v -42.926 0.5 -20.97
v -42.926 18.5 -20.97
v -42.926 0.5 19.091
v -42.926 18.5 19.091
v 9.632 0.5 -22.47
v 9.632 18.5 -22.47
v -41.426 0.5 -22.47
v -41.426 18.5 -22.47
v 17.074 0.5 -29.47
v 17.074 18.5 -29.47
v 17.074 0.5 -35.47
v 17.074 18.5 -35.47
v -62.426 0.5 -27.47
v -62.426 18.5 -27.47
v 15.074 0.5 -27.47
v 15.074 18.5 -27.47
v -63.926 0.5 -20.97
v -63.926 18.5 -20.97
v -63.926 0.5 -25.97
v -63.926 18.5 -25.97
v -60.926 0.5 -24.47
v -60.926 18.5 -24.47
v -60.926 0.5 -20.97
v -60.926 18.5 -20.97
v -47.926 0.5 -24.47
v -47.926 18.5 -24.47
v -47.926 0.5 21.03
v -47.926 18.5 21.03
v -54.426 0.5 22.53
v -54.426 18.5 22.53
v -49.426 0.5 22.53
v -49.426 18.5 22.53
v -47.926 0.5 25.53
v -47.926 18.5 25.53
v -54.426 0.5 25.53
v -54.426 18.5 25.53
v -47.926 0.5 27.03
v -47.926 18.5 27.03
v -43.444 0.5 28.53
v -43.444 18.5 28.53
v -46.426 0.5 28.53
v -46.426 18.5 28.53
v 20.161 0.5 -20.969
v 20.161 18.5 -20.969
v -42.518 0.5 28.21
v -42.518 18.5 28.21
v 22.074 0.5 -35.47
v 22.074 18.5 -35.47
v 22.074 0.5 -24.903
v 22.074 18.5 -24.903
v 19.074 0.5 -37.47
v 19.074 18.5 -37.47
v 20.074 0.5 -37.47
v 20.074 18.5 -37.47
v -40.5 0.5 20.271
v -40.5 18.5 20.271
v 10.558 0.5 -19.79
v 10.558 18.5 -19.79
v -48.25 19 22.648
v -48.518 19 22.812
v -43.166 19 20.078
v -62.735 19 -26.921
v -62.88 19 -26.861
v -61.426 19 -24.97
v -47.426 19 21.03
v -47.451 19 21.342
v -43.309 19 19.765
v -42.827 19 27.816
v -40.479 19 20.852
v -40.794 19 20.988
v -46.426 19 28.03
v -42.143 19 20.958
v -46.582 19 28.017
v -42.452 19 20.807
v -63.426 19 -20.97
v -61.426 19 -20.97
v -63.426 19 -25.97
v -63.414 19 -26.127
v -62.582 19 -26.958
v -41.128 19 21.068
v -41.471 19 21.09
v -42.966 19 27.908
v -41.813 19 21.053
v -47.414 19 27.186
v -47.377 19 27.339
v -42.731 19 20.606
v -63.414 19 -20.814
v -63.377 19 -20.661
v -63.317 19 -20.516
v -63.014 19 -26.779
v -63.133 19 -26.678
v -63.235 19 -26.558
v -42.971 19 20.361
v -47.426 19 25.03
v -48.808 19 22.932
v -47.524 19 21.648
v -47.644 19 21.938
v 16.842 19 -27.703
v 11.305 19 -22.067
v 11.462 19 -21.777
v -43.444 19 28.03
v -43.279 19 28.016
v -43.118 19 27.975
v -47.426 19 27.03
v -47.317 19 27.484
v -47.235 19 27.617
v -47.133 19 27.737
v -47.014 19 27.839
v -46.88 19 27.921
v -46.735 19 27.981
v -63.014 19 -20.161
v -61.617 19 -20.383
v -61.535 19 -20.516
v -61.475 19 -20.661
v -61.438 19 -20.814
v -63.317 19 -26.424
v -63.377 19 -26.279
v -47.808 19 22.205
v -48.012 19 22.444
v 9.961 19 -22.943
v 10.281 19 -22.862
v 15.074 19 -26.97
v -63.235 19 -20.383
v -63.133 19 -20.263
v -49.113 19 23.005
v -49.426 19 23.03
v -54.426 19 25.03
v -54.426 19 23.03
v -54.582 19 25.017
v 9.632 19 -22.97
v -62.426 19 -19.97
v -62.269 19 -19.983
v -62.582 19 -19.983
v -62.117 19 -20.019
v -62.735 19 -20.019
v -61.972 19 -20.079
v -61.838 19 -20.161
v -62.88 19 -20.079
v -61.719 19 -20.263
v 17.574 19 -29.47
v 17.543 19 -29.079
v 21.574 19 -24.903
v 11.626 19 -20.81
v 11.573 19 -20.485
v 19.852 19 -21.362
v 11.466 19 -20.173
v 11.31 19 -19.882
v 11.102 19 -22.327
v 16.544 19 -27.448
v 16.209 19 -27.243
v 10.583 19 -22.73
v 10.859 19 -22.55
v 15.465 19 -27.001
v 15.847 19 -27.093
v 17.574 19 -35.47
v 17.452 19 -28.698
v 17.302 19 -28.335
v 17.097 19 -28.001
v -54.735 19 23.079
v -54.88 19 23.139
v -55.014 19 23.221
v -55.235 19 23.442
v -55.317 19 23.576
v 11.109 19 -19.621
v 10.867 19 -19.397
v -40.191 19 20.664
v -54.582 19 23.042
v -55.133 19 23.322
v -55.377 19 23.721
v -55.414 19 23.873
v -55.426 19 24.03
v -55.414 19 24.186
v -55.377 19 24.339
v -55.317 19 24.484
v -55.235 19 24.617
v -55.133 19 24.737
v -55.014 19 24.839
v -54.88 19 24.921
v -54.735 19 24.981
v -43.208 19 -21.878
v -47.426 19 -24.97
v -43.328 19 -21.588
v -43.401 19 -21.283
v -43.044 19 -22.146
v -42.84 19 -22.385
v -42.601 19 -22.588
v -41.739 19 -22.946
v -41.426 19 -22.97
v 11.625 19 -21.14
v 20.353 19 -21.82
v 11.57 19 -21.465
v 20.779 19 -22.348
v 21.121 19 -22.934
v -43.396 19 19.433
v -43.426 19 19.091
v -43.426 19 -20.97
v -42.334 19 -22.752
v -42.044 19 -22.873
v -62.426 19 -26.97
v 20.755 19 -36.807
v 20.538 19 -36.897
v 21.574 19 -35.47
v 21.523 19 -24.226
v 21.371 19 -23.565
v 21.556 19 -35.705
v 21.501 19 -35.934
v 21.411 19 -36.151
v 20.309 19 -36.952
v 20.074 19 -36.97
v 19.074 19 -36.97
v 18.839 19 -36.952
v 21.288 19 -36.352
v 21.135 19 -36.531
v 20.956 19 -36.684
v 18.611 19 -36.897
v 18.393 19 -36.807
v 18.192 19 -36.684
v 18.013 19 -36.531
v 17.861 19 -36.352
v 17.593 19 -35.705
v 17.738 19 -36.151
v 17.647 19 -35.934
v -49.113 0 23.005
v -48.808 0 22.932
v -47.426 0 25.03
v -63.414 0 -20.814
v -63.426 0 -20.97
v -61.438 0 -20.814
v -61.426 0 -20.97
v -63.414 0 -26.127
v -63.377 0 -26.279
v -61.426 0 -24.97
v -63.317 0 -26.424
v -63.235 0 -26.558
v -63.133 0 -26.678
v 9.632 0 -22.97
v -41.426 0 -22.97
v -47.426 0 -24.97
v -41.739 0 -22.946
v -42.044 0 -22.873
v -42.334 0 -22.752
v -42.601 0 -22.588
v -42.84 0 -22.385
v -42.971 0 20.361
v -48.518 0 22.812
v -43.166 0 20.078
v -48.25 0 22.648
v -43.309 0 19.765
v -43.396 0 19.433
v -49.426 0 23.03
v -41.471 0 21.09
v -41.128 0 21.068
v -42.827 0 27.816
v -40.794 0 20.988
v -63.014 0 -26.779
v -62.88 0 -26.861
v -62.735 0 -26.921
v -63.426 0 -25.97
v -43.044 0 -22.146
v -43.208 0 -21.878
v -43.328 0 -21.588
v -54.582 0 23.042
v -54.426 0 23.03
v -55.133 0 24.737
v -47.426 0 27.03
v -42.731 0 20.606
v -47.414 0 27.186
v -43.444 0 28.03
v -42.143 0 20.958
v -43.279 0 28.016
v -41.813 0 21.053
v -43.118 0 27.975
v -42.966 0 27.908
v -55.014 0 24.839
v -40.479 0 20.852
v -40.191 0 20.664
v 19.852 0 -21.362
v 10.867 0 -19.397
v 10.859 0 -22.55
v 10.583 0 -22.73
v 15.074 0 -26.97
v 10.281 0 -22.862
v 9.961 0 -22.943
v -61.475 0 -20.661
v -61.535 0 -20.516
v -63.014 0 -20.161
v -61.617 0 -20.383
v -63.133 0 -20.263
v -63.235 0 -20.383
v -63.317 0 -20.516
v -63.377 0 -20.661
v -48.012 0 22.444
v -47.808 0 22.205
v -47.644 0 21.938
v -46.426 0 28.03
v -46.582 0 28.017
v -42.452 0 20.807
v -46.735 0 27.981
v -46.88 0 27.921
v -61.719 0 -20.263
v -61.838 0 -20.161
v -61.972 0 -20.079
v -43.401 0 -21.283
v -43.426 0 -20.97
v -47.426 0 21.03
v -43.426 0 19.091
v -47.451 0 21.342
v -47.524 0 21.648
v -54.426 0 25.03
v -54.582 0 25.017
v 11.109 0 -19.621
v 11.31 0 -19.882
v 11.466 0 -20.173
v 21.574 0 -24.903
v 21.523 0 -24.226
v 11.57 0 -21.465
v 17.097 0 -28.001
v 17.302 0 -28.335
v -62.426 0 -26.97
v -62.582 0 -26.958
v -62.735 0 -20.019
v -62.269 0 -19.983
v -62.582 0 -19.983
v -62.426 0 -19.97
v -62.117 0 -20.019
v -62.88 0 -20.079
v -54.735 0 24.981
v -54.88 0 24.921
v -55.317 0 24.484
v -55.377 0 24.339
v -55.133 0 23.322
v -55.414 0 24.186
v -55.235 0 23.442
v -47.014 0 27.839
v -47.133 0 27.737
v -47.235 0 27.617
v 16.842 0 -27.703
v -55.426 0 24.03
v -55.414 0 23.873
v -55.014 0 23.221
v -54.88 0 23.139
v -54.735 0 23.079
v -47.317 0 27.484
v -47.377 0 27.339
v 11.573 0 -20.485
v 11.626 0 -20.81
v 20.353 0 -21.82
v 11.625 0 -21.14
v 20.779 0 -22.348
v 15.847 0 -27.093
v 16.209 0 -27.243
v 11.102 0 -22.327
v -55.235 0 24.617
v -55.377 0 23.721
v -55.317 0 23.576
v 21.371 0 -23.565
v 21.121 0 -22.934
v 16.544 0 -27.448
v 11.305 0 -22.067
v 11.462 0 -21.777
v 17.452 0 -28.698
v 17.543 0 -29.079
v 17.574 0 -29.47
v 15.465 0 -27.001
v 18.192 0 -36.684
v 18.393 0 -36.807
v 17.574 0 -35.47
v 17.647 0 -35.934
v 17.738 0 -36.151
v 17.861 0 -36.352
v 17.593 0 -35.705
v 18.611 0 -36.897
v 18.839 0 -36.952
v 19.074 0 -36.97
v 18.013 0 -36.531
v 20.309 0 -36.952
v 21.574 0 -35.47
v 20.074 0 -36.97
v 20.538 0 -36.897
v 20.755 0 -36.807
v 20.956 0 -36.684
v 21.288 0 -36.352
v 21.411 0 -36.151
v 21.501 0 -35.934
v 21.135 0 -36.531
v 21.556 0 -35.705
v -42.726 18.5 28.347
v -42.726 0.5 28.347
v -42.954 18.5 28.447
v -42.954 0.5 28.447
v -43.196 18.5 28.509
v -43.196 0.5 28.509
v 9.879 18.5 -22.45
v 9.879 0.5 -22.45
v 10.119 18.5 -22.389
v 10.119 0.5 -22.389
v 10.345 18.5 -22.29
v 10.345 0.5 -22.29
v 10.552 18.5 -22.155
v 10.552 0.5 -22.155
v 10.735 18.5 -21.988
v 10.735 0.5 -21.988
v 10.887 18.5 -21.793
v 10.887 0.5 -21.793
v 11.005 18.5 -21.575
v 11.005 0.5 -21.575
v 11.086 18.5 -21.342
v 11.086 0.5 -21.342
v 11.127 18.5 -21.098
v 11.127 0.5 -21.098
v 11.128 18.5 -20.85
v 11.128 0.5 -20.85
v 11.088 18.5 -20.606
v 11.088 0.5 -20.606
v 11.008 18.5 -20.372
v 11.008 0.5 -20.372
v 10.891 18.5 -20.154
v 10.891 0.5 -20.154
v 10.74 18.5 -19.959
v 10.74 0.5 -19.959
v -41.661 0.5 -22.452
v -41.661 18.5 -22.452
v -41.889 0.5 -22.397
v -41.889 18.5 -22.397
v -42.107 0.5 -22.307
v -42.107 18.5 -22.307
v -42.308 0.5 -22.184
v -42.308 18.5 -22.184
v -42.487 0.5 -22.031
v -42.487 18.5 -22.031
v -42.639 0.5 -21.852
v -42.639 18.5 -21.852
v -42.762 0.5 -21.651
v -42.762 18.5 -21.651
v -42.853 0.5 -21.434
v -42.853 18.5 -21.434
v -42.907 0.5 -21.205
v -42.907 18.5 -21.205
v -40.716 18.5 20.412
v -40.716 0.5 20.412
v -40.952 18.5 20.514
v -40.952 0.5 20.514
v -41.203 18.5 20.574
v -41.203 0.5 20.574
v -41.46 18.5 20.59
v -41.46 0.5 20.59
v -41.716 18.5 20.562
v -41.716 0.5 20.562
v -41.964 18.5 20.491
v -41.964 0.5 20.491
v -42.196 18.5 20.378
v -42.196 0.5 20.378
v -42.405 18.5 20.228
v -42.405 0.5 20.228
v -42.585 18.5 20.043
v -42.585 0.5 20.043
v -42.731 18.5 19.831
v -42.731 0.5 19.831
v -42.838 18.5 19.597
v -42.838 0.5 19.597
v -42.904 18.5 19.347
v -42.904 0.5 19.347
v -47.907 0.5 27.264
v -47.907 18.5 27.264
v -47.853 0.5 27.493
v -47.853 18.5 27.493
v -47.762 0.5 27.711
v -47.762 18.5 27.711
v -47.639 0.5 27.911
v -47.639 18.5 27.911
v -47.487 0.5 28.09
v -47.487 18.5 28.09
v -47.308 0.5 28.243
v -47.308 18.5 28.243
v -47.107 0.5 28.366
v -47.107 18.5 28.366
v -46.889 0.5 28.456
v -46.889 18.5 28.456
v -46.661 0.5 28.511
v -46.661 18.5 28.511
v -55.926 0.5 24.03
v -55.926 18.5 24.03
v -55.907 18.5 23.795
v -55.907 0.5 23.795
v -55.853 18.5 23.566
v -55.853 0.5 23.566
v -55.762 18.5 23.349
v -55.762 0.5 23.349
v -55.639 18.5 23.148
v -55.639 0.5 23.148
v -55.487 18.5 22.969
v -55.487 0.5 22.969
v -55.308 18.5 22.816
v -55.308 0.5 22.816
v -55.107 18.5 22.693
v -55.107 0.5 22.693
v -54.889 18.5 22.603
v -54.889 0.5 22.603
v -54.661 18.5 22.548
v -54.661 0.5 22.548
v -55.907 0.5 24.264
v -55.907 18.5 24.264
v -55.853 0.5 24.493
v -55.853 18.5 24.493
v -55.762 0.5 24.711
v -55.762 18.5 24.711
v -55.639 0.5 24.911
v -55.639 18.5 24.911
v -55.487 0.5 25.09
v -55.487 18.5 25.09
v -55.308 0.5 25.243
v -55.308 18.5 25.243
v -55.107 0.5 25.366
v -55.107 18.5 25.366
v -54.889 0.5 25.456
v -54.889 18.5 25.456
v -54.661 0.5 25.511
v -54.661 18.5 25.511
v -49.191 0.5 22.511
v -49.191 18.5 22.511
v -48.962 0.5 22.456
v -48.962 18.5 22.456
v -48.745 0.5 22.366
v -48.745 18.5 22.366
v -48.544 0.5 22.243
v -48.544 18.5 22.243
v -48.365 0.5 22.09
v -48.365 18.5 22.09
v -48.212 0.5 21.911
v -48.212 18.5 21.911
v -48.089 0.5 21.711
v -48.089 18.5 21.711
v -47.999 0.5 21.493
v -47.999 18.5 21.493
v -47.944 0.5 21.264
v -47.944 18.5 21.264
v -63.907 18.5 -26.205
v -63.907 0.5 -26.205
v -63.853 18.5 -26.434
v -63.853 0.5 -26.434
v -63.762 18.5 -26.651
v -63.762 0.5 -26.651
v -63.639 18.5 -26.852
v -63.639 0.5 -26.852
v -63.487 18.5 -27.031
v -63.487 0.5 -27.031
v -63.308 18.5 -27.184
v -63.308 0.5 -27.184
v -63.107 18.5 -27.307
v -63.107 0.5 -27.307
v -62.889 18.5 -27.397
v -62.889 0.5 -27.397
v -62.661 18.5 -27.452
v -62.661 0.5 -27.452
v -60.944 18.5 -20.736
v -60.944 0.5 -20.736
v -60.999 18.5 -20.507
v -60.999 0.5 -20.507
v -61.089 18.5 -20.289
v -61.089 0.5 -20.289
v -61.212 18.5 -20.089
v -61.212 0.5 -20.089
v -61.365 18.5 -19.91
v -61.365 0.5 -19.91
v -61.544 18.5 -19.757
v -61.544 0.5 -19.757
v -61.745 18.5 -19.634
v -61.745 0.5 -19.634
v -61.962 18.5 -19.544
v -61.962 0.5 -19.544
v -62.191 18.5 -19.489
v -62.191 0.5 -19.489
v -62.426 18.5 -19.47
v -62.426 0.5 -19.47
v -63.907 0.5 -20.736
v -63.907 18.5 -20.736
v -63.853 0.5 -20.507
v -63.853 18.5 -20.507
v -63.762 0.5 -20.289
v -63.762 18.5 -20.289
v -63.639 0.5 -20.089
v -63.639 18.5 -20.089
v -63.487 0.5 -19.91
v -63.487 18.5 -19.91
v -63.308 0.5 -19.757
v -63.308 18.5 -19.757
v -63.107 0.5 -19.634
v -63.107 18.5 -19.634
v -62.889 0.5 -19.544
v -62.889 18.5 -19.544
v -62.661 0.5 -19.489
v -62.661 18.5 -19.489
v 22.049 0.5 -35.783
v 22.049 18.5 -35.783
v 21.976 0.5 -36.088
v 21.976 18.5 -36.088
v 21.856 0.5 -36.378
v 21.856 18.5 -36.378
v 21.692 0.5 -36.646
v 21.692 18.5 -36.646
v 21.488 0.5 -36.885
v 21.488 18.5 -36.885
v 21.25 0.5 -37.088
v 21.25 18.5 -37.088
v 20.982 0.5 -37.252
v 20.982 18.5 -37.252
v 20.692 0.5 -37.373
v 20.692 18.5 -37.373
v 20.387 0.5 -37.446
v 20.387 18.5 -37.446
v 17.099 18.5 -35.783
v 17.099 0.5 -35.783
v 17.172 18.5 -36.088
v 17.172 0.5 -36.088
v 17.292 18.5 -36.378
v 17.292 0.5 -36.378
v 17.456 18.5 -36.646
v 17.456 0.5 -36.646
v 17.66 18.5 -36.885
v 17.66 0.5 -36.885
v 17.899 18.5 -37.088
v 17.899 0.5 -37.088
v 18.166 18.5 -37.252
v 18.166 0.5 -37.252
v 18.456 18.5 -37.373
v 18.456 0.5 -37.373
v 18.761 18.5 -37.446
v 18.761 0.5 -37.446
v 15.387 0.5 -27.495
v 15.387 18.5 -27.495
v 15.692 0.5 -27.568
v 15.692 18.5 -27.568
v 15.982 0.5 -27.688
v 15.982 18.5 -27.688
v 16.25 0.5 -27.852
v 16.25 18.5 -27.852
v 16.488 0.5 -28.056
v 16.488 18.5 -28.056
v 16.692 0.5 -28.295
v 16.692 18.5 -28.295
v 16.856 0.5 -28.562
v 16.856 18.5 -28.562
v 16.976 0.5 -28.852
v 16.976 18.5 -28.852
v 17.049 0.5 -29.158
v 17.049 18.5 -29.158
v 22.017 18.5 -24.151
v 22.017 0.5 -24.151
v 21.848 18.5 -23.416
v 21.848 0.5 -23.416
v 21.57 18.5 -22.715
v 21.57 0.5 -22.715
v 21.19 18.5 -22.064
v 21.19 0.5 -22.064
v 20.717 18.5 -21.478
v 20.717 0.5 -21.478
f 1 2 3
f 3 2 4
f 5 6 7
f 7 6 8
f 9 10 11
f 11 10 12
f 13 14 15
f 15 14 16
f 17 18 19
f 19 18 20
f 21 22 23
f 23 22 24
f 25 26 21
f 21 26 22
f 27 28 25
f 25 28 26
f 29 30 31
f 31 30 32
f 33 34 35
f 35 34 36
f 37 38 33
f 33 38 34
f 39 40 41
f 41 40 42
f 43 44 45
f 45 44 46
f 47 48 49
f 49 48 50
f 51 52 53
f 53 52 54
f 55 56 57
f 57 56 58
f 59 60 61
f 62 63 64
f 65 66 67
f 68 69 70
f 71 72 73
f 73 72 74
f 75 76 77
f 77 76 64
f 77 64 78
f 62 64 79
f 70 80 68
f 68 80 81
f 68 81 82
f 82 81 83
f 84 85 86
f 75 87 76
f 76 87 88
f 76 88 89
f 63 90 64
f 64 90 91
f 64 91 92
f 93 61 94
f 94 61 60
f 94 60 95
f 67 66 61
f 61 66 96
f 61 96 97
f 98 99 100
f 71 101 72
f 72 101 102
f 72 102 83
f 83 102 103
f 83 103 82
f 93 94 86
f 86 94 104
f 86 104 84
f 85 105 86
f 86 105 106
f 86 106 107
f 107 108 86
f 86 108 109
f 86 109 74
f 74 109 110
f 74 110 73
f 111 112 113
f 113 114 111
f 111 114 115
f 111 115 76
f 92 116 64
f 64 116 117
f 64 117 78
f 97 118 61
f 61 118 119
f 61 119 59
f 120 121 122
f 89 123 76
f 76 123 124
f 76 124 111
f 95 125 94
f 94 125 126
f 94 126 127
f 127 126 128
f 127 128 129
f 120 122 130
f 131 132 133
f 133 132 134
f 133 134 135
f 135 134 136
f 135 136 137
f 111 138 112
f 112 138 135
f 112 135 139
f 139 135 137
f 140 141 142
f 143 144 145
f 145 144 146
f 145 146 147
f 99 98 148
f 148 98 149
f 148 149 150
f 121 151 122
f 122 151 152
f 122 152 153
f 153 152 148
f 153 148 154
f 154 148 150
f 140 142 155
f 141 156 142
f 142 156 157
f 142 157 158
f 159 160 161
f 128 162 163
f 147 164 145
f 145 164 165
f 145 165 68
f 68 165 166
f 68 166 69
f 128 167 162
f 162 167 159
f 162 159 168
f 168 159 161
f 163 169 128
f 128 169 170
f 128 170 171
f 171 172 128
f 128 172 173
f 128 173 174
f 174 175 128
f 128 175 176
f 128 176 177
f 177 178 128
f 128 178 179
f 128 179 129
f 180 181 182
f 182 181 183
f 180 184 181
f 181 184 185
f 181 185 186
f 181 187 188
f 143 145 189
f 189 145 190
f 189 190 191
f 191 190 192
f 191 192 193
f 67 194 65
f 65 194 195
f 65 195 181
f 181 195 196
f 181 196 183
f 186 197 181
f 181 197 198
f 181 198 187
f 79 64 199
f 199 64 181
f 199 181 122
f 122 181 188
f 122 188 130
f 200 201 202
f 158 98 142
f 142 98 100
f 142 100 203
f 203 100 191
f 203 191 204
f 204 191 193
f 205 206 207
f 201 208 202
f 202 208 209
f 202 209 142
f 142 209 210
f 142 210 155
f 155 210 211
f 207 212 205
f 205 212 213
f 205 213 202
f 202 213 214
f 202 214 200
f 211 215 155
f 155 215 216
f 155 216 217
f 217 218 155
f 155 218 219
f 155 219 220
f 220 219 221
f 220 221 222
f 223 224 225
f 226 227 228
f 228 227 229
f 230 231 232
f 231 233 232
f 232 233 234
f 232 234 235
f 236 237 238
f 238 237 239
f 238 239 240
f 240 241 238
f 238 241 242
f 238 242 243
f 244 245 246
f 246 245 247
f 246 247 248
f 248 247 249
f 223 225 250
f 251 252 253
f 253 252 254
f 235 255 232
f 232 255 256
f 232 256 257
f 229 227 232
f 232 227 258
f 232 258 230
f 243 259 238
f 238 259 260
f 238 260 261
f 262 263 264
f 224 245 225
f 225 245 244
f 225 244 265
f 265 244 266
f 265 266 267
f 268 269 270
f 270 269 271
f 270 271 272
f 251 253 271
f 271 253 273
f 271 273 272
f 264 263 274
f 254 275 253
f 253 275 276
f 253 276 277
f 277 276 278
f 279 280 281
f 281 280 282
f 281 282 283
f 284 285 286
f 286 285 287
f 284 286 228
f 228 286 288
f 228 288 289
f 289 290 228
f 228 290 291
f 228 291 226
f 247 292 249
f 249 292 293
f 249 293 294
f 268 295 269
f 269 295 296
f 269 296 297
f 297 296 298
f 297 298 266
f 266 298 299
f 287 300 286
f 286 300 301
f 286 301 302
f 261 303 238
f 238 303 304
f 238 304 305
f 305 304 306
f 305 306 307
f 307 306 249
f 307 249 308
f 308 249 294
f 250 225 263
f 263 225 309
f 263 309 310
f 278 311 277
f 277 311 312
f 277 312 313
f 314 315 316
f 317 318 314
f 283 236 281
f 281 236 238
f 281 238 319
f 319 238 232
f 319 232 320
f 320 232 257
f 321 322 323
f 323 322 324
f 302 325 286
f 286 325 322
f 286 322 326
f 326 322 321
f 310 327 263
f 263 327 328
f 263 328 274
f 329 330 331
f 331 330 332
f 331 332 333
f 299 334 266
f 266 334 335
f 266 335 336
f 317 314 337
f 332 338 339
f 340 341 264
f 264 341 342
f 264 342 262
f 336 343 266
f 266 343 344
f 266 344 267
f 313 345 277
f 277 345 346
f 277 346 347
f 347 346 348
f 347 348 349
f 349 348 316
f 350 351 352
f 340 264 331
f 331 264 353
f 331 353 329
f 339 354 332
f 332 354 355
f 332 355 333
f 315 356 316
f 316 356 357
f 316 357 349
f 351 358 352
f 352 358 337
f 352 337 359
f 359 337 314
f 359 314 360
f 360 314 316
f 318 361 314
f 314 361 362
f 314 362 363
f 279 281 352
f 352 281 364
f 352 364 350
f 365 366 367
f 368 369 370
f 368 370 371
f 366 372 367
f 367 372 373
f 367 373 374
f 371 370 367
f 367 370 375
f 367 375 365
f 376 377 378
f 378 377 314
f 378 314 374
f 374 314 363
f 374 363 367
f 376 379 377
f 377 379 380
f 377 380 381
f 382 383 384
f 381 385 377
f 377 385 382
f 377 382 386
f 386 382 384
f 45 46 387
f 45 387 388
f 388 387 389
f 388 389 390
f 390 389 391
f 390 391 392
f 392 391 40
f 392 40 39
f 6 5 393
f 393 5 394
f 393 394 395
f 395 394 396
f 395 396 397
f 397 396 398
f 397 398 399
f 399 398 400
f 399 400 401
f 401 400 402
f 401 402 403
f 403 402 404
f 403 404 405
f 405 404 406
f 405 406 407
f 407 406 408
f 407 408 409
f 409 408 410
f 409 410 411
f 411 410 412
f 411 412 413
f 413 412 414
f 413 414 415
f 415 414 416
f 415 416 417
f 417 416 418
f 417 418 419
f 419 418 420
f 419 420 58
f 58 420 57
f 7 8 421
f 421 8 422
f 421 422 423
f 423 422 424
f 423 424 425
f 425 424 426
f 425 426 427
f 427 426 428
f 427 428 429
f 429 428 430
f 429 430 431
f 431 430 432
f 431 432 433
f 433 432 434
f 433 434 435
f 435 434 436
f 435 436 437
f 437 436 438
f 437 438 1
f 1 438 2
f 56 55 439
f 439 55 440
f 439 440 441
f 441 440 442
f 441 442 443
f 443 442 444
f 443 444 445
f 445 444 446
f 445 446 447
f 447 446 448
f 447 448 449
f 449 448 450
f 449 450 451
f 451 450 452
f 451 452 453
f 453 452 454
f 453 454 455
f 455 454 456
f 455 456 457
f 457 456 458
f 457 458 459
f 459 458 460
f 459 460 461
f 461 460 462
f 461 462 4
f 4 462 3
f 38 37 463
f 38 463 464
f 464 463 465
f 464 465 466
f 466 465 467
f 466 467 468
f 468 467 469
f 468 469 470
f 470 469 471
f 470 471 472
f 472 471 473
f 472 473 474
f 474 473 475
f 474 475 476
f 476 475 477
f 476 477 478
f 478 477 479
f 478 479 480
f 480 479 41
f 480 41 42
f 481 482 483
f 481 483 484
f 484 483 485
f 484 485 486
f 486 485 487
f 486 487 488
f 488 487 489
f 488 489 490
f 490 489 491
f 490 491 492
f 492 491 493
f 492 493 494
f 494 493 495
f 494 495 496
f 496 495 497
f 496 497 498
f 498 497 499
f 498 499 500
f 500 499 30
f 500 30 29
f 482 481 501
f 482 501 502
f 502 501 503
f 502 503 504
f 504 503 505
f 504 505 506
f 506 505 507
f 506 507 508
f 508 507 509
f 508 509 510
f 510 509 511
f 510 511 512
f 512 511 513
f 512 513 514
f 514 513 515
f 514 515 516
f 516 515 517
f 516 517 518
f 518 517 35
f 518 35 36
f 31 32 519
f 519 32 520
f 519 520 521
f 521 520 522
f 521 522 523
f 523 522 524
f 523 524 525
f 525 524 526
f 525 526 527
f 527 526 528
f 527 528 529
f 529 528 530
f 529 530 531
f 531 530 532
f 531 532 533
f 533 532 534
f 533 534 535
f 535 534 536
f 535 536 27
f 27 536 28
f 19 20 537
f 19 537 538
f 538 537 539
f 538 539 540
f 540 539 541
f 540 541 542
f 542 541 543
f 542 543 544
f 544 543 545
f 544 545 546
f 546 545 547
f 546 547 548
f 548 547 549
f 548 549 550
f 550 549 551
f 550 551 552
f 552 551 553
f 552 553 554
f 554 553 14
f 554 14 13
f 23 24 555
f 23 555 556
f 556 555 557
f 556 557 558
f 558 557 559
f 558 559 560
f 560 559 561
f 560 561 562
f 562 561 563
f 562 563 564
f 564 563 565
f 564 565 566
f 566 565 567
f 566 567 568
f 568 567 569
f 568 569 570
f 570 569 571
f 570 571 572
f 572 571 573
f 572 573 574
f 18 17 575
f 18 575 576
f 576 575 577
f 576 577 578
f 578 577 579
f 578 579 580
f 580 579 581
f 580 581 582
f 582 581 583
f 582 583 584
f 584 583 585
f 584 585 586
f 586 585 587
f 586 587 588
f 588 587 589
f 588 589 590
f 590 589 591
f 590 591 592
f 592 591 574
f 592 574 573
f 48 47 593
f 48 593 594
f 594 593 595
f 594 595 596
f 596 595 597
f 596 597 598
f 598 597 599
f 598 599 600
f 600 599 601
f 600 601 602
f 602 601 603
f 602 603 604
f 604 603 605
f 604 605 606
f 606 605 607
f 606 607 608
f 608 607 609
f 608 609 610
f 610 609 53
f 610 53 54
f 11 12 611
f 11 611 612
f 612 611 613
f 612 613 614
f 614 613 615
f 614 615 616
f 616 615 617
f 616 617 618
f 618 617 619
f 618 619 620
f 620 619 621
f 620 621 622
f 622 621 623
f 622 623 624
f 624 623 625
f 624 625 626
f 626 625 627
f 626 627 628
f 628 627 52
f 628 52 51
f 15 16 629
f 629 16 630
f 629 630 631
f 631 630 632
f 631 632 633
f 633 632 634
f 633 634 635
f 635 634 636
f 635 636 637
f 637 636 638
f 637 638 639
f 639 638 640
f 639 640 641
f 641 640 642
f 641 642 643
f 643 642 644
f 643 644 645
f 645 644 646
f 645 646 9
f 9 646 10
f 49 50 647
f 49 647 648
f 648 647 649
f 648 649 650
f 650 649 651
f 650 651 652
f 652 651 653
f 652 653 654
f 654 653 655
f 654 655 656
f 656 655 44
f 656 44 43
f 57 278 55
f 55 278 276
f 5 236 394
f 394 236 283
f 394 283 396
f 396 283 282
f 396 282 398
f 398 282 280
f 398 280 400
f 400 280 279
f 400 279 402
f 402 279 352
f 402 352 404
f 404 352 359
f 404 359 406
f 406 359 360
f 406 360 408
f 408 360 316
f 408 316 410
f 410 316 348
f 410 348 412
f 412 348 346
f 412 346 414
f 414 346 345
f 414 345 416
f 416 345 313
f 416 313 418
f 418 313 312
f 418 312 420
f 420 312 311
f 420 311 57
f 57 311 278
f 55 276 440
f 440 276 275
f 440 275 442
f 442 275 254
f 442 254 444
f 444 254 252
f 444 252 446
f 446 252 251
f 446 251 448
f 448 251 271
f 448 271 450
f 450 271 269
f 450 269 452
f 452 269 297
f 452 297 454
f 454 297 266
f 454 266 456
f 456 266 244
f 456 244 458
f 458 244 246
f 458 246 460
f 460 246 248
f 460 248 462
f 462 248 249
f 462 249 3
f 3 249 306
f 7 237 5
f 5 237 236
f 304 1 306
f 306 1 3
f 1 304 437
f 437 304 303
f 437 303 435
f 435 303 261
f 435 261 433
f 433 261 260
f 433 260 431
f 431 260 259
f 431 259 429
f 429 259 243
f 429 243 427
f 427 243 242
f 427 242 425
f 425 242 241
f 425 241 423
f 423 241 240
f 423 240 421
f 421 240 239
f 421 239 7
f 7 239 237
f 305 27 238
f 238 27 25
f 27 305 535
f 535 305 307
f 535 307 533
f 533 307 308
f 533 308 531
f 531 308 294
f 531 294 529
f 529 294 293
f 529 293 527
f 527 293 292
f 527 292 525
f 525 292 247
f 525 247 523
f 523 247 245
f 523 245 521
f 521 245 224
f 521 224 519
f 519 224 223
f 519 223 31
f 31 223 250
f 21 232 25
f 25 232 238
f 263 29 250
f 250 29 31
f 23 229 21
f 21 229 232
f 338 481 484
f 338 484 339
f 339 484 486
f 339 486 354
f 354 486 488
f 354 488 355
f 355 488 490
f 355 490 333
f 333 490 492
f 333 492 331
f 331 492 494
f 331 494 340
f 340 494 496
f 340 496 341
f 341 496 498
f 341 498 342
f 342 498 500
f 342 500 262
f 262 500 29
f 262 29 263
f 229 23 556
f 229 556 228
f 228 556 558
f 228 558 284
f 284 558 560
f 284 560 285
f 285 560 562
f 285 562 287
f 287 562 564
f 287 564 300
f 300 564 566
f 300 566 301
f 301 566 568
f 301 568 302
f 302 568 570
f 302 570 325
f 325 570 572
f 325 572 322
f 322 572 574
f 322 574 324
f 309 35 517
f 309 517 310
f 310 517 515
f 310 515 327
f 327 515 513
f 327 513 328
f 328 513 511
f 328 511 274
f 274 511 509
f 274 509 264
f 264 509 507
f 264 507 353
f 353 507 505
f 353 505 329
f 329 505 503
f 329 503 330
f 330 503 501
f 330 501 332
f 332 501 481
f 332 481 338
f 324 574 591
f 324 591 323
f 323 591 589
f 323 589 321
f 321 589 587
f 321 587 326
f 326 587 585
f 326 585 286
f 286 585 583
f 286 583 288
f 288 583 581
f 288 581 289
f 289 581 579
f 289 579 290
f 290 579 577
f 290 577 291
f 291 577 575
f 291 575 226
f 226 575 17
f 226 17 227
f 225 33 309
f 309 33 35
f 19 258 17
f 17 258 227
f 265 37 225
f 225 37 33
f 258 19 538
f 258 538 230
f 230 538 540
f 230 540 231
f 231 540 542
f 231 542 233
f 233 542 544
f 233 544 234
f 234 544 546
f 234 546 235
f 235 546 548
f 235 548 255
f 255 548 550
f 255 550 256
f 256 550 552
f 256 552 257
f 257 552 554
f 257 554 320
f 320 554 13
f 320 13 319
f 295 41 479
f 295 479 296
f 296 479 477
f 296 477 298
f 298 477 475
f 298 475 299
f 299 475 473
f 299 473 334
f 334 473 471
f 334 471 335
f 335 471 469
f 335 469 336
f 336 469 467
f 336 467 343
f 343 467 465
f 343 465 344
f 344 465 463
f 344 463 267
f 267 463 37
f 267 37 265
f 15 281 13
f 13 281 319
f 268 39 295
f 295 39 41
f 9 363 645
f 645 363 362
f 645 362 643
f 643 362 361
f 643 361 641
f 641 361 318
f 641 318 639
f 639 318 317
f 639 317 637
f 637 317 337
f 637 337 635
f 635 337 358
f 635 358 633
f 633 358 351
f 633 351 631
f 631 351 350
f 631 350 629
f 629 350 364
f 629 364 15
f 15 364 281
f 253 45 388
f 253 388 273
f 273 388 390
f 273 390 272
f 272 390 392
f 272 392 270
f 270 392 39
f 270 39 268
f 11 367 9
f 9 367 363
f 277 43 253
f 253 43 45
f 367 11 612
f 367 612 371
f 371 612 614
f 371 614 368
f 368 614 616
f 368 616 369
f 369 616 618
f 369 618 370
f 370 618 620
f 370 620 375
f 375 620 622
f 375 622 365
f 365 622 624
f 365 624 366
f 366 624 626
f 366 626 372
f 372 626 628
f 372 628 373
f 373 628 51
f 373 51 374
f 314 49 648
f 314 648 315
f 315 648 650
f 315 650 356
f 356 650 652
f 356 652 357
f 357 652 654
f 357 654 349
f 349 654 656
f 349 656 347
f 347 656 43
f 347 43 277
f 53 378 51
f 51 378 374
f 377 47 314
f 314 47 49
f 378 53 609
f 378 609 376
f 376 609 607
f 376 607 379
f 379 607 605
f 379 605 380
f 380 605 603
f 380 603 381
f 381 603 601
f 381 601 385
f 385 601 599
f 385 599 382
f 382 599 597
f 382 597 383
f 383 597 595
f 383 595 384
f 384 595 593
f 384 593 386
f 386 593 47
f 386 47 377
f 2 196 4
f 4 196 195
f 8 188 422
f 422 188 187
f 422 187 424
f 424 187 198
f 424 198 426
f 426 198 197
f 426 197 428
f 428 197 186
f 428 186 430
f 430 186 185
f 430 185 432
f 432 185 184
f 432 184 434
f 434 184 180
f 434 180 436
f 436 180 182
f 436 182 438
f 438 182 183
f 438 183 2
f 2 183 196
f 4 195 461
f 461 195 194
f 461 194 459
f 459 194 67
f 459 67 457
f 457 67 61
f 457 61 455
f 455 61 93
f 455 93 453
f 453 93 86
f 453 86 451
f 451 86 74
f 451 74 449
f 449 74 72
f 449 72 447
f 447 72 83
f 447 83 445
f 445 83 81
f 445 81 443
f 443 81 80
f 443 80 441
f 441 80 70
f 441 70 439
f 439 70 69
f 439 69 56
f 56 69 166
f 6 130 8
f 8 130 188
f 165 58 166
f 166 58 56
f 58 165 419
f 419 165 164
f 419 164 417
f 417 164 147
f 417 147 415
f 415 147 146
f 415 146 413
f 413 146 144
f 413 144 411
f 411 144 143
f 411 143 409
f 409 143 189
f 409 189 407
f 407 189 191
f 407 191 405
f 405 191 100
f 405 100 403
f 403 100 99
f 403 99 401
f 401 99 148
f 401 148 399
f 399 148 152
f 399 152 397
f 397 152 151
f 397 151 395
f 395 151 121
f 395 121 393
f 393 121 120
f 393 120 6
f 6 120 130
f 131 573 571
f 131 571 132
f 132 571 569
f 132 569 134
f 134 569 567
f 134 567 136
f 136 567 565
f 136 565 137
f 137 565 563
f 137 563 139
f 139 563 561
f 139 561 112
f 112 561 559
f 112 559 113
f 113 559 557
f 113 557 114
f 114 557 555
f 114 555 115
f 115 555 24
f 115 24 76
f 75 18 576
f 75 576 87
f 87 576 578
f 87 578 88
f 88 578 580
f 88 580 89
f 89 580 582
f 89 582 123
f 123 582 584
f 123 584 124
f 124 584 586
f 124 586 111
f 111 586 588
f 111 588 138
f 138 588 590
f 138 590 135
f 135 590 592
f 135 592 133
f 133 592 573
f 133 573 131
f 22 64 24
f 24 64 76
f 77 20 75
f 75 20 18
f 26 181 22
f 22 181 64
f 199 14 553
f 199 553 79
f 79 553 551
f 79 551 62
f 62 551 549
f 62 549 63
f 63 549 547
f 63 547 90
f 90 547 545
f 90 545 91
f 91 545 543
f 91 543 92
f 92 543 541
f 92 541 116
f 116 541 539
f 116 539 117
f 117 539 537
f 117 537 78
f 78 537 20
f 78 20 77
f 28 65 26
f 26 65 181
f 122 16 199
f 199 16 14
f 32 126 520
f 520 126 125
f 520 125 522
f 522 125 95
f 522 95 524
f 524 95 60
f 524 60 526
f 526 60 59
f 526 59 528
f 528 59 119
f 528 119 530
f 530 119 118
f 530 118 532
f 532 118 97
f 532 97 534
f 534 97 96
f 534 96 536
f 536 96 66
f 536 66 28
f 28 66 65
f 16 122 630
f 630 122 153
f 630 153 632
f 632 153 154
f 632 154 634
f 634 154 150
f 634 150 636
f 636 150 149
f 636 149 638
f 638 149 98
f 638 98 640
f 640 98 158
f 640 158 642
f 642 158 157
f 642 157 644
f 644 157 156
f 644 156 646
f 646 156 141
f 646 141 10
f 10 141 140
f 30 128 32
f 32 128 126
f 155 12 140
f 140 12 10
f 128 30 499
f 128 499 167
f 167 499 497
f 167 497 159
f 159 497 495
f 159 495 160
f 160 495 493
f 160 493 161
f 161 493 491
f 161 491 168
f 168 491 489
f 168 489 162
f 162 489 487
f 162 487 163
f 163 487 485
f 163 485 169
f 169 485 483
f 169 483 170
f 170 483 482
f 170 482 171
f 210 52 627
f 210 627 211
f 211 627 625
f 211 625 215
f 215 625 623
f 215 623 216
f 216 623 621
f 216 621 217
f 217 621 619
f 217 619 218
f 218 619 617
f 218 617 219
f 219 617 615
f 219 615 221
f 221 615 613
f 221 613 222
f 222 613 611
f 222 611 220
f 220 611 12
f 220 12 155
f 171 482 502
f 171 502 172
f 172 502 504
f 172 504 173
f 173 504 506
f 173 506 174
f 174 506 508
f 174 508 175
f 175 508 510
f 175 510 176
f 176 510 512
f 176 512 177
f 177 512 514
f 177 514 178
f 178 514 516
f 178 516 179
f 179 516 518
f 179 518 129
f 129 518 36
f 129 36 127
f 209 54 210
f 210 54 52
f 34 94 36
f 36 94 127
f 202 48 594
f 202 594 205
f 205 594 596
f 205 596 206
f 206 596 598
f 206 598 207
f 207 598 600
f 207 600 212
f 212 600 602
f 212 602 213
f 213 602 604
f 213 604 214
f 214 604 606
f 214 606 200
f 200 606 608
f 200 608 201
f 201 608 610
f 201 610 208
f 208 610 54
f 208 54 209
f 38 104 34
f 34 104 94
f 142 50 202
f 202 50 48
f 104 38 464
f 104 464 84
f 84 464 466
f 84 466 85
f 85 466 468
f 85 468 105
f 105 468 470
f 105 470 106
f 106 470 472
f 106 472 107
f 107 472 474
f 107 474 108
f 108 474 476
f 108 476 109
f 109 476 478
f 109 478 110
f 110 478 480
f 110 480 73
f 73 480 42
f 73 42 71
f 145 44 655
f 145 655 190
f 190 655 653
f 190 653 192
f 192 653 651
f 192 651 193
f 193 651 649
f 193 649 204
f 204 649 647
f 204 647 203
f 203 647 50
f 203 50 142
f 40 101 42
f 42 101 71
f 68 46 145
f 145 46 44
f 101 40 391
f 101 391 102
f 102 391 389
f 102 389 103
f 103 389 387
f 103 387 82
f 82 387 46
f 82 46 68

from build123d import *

# Parameters (mm, degrees)
BOSS_EXTRUDE1_DEPTH = 19
FILLET1_R           = 1.5
FILLET2_R           = 2
FILLET3_R           = 5
CHAMFER1_SIZE       = 0.5


with BuildPart() as part:
    # Sketch1 → Boss-Extrude1 (new body)
    with BuildSketch(Plane(origin=(0, 0, 0), x_dir=(1, 0, 0), z_dir=(0, 1, 0))):
        Polygon((-47.925925926, 24.470420803), (-47.925925926, -7.529579197), (-47.925925926, -22.529579197), (-55.925925926, -22.529579197), (-55.925925926, -25.529579197), (-47.925925926, -25.529579197), (-47.925925926, -28.529579197), (-42.925925926, -28.529579197), (22.074074074, 22.470420803), (22.074074074, 24.470420803), (22.074074074, 27.470420803), (22.074074074, 37.470420803), (17.074074074, 37.470420803), (17.074074074, 27.470420803), (-42.925925926, 27.470420803), (-47.925925926, 27.470420803), (-63.925925926, 27.470420803), (-63.925925926, 24.470420803), (-63.925925926, 19.470420803), (-60.925925926, 19.470420803), (-60.925925926, 24.470420803), align=None)
        Polygon((13.974112284, 22.470420803), (-13.512360238, 0.904111593), (-42.925925926, -22.174224561), (-42.925925926, 22.470420803), align=None, mode=Mode.SUBTRACT)
    extrude(amount=BOSS_EXTRUDE1_DEPTH)

    # Fillet1
    fillet1_edges = [part.edges().sort_by_distance(p)[0] for p in [
        (13.974112284, 9.5, -22.470420803),
        (-42.925925926, 9.5, -22.470420803),
        (-42.925925926, 9.5, 22.174224561),
        (-47.925925926, 9.5, 28.529579197),
        (-55.925925926, 9.5, 25.529579197),
        (-55.925925926, 9.5, 22.529579197),
        (-47.925925926, 9.5, 22.529579197),
        (-63.925925926, 9.5, -27.470420803),
        (-63.925925926, 9.5, -19.470420803),
        (-60.925925926, 9.5, -19.470420803),
        (-42.925925926, 9.5, 28.529579197),
    ]]
    fillet(fillet1_edges, radius=FILLET1_R - 0.0001)  # a hair under: the kernel refuses the full size

    # Fillet2
    fillet2_edges = [part.edges().sort_by_distance(p)[0] for p in [
        (17.074074074, 9.5, -37.470420803),
        (22.074074074, 9.5, -37.470420803),
        (17.074074074, 9.5, -27.470420803),
    ]]
    fillet(fillet2_edges, radius=FILLET2_R)

    # Fillet3
    fillet3_edges = [part.edges().sort_by_distance(p)[0] for p in [
        (22.074074074, 9.5, -22.470420803),
    ]]
    fillet(fillet3_edges, radius=FILLET3_R)

    # Chamfer1
    chamfer1_edges = [part.edges().sort_by_distance(p)[0] for p in [
        (19.574074074, 0, -37.470420803),
        (19.574074074, 19, -37.470420803),
        (17.074074074, 0, -32.470420803),
        (17.659860512, 0, -36.884634365),
        (21.488287636, 0, -36.884634365),
        (17.074074074, 19, -32.470420803),
        (17.659860512, 19, -36.884634365),
        (21.488287636, 19, -36.884634365),
        (16.488287636, 0, -28.056207241),
        (16.488287636, 19, -28.056207241),
        (22.074074074, 0, -30.186559659),
        (22.074074074, 19, -30.186559659),
        (-11.178869129, 0, 3.620350018),
        (21.570304248, 0, -22.715482427),
        (-11.178869129, 19, 3.620350018),
        (21.570304248, 19, -22.715482427),
        (-47.925925926, 0, 26.279629197),
        (-54.425925926, 0, -24.470420803),
        (-60.925925926, 0, -22.720370803),
        (-60.925925926, 19, -22.720370803),
        (-54.425925926, 19, -24.470420803),
        (-44.935070567, 0, 28.529579197),
        (-47.925925926, 19, 26.279629197),
        (-51.175975926, 0, 25.529579197),
        (-51.925925926, 0, 22.529579197),
        (-47.925925926, 0, -1.720370803),
        (-63.925925926, 0, -23.470420803),
        (-23.675975926, 0, -27.470420803),
        (-42.925925926, 0, -0.93981007),
        (-14.970820153, 0, 0.240218493),
        (-15.896688718, 0, -22.470420803),
        (-61.365236465, 0, -19.909731342),
        (-63.486615387, 0, -19.909731342),
        (-63.486615387, 0, -27.031110264),
        (-55.486615387, 0, 22.968889736),
        (-55.486615387, 0, 25.090268658),
        (-47.486615387, 0, 28.090268658),
        (-42.954332008, 0, 28.447357731),
        (-44.935070567, 19, 28.529579197),
        (-23.675975926, 19, -27.470420803),
        (-63.925925926, 19, -23.470420803),
        (-47.925925926, 19, -1.720370803),
        (-51.925925926, 19, 22.529579197),
        (-51.175975926, 19, 25.529579197),
        (-42.925925926, 19, -0.93981007),
        (-15.896688718, 19, -22.470420803),
        (-14.970820153, 19, 0.240218493),
        (-61.365236465, 19, -19.909731342),
        (-63.486615387, 19, -19.909731342),
        (-63.486615387, 19, -27.031110264),
        (-55.486615387, 19, 22.968889736),
        (-55.486615387, 19, 25.090268658),
        (-47.486615387, 19, 28.090268658),
        (-42.954332008, 19, 28.447357731),
        (11.050327025, 0, -21.460304004),
        (11.050327025, 19, -21.460304004),
        (-42.486615387, 0, -22.031110264),
        (-42.486615387, 19, -22.031110264),
        (-42.082147008, 0, 20.43967979),
        (-42.082147008, 19, 20.43967979),
        (-48.365236465, 0, 22.090268658),
        (-48.365236465, 19, 22.090268658),
    ]]
    chamfer(chamfer1_edges, length=CHAMFER1_SIZE)


solid = part.part
